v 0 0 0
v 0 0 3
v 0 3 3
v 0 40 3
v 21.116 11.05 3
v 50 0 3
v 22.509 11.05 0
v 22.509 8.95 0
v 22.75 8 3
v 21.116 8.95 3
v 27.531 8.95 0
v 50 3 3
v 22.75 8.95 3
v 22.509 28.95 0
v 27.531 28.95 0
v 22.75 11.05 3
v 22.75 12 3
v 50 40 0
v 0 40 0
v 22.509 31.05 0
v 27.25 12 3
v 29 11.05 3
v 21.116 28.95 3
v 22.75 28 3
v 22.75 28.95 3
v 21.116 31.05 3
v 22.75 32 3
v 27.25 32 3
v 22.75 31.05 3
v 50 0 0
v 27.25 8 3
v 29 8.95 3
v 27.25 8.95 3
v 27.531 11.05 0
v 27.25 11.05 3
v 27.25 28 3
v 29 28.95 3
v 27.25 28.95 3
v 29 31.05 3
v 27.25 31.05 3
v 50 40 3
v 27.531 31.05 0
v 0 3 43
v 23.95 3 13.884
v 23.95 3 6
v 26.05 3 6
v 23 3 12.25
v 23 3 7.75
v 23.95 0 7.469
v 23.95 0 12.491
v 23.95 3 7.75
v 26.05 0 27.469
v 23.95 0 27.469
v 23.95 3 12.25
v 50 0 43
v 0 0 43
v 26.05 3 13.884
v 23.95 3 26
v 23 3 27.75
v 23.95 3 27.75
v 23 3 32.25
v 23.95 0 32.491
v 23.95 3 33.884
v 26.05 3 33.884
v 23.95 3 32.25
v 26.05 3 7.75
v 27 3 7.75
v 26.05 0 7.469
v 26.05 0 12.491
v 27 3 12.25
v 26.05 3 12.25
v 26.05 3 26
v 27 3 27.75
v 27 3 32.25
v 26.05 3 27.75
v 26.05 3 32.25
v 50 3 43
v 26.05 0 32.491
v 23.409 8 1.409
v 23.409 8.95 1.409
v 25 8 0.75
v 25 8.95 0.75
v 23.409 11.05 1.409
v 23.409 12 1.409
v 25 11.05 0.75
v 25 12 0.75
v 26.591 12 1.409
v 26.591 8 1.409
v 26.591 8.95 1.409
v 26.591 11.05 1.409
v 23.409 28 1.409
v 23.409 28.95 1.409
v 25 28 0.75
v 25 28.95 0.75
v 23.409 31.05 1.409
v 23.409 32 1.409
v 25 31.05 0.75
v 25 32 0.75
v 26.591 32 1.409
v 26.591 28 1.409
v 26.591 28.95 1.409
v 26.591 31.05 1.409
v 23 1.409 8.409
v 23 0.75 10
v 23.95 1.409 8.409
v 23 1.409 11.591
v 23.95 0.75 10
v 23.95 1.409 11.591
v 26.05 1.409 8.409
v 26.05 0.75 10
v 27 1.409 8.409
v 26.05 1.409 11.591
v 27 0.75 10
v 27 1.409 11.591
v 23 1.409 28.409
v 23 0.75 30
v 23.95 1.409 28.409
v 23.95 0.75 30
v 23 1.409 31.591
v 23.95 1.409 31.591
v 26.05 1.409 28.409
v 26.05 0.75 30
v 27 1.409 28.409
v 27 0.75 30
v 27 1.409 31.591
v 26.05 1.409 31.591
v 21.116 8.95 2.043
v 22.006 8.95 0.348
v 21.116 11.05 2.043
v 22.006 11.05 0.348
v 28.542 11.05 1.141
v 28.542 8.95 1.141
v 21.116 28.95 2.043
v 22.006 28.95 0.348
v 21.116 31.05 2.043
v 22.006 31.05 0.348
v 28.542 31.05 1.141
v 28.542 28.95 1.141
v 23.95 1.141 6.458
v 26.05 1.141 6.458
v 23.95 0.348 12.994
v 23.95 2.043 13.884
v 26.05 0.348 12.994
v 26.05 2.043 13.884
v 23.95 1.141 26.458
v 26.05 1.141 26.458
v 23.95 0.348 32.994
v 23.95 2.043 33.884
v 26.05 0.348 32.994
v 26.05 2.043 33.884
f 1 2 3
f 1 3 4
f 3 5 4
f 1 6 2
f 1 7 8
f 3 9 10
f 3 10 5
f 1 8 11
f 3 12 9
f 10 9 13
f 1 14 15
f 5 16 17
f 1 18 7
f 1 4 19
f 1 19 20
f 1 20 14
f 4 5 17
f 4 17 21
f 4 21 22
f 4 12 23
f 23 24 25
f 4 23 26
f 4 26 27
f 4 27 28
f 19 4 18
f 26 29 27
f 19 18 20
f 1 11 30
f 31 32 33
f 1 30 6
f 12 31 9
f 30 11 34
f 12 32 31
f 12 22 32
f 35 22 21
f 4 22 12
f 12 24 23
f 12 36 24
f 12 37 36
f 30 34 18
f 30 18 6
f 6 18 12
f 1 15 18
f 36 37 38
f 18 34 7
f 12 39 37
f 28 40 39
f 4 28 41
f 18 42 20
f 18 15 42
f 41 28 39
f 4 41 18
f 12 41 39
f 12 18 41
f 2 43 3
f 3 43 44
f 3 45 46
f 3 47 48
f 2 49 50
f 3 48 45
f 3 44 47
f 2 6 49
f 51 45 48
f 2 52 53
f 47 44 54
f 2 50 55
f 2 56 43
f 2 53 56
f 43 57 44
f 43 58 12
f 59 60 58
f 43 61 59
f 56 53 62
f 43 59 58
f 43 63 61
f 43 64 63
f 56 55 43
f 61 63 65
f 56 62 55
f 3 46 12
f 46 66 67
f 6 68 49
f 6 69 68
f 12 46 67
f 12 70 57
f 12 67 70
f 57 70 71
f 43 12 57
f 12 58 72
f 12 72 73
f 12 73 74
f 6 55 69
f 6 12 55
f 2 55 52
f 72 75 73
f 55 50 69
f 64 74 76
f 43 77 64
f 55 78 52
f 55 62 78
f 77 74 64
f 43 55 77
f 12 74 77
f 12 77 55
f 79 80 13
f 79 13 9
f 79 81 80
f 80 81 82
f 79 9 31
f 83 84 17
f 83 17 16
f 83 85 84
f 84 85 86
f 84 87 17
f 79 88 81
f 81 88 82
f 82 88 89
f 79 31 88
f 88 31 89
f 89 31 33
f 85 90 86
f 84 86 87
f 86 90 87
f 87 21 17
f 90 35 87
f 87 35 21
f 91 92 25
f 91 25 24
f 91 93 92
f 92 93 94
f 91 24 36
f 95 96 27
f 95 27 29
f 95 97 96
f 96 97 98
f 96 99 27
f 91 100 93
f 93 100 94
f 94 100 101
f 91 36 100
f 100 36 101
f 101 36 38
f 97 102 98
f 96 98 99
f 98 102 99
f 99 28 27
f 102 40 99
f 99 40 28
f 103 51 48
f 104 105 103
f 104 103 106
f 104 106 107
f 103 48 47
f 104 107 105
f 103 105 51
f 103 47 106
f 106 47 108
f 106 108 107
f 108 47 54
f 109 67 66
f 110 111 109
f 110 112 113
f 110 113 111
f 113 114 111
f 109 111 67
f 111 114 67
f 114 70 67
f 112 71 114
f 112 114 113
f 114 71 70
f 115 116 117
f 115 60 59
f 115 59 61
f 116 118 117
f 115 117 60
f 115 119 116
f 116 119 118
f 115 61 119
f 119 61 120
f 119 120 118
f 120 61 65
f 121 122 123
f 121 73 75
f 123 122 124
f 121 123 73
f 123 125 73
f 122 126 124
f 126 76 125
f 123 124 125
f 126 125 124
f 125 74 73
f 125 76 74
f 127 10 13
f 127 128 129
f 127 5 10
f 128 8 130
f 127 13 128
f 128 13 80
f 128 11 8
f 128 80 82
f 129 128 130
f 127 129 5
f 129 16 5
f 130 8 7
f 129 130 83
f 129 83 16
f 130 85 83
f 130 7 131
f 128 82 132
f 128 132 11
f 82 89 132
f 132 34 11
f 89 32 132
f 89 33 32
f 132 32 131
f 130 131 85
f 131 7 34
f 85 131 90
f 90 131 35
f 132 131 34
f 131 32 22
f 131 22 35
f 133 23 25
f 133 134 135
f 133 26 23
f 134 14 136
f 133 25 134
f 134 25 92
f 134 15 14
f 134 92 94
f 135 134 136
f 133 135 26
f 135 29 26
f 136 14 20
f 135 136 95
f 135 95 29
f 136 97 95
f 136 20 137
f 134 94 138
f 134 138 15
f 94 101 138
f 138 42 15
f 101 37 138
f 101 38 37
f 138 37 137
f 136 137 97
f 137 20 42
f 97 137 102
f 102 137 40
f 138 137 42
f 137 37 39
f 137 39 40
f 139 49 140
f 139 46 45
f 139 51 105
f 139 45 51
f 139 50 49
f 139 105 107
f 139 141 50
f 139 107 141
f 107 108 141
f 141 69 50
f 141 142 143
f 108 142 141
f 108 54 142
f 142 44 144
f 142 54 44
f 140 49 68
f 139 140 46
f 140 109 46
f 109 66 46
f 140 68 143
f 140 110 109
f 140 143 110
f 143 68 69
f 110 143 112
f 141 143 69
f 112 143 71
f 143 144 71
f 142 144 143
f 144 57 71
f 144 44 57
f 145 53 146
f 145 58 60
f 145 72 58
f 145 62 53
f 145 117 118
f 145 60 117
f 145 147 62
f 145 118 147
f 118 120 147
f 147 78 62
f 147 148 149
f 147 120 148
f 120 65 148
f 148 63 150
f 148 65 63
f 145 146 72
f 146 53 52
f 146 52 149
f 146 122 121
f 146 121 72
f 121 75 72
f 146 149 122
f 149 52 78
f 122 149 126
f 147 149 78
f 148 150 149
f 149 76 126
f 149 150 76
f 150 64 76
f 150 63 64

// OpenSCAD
// L-bracket dimensions
width = 50;
depth = 40;
height = 40;
thickness = 3;

// Hole dimensions
hole_diameter = 4.5;
countersink_diameter = 8;
countersink_depth = 2;
hole_offset_from_edge = 10;
hole_spacing_factor = 0.5; // For spacing holes symmetrically on each flange

module l_bracket() {
    // Base flange (horizontal)
    cube([width, depth, thickness]);

    // Vertical flange
    translate([0, 0, thickness])
    cube([width, thickness, height]);
}

module countersink_hole(hole_pos_x, hole_pos_y, hole_pos_z, normal_vector) {
    translate(hole_pos_x) {
        // Main hole
        cylinder(h = thickness * 2, r = hole_diameter / 2, center = true);

        // Countersink
        linear_extrude(height = countersink_depth, convexity = 10) {
            difference() {
                circle(r = countersink_diameter / 2);
                circle(r = hole_diameter / 2);
            }
        }
    }
}

module create_holes() {
    // Holes on the horizontal flange (facing +Z)
    // Position them on the center line of the width, and offset from the edges of depth
    hole_y_offset = depth / 2 - hole_offset_from_edge;
    hole_center_x = width / 2;
    hole_spacing_y = depth * hole_spacing_factor;

    // Left hole on horizontal flange
    translate([hole_center_x, hole_y_offset - hole_spacing_y/2, thickness])
    rotate([90, 0, 0]) // Rotate to face upwards
    cylinder(h = thickness * 2, r = countersink_diameter / 2, center = true);

    // Right hole on horizontal flange
    translate([hole_center_x, hole_y_offset + hole_spacing_y/2, thickness])
    rotate([90, 0, 0]) // Rotate to face upwards
    cylinder(h = thickness * 2, r = countersink_diameter / 2, center = true);

    // Holes on the vertical flange (facing +Y)
    // Position them on the center line of the width, and offset from the edges of height
    hole_z_offset = height / 2 - hole_offset_from_edge;
    hole_spacing_z = height * hole_spacing_factor;

    // Left hole on vertical flange
    translate([hole_center_x, thickness, thickness + hole_z_offset - hole_spacing_z/2])
    rotate([0, 90, 0]) // Rotate to face outwards
    cylinder(h = width * 2, r = countersink_diameter / 2, center = true);

    // Right hole on vertical flange
    translate([hole_center_x, thickness, thickness + hole_z_offset + hole_spacing_z/2])
    rotate([0, 90, 0]) // Rotate to face outwards
    cylinder(h = width * 2, r = countersink_diameter / 2, center = true);
}

module l_bracket_with_holes() {
    difference() {
        l_bracket();

        // Cut the holes
        // Horizontal flange holes
        translate([width/2, depth/2 - hole_offset_from_edge, thickness])
        rotate([90, 0, 0])
        cylinder(h = thickness + 1, r = hole_diameter/2, center = true);

        translate([width/2, depth/2 + hole_offset_from_edge, thickness])
        rotate([90, 0, 0])
        cylinder(h = thickness + 1, r = hole_diameter/2, center = true);

        // Vertical flange holes
        translate([width/2, thickness, height/2 - hole_offset_from_edge])
        rotate([0, 90, 0])
        cylinder(h = thickness + 1, r = hole_diameter/2, center = true);

        translate([width/2, thickness, height/2 + hole_offset_from_edge])
        rotate([0, 90, 0])
        cylinder(h = thickness + 1, r = hole_diameter/2, center = true);

        // Countersink cuts on the horizontal flange
        translate([width/2, depth/2 - hole_offset_from_edge, thickness])
        rotate([90, 0, 0])
        cylinder(h = countersink_depth + 0.1, r = countersink_diameter/2, center = true);

        translate([width/2, depth/2 + hole_offset_from_edge, thickness])
        rotate([90, 0, 0])
        cylinder(h = countersink_depth + 0.1, r = countersink_diameter/2, center = true);

        // Countersink cuts on the vertical flange
        translate([width/2, thickness, height/2 - hole_offset_from_edge])
        rotate([0, 90, 0])
        cylinder(h = countersink_depth + 0.1, r = countersink_diameter/2, center = true);

        translate([width/2, thickness, height/2 + hole_offset_from_edge])
        rotate([0, 90, 0])
        cylinder(h = countersink_depth + 0.1, r = countersink_diameter/2, center = true);
    }
}

l_bracket_with_holes();
